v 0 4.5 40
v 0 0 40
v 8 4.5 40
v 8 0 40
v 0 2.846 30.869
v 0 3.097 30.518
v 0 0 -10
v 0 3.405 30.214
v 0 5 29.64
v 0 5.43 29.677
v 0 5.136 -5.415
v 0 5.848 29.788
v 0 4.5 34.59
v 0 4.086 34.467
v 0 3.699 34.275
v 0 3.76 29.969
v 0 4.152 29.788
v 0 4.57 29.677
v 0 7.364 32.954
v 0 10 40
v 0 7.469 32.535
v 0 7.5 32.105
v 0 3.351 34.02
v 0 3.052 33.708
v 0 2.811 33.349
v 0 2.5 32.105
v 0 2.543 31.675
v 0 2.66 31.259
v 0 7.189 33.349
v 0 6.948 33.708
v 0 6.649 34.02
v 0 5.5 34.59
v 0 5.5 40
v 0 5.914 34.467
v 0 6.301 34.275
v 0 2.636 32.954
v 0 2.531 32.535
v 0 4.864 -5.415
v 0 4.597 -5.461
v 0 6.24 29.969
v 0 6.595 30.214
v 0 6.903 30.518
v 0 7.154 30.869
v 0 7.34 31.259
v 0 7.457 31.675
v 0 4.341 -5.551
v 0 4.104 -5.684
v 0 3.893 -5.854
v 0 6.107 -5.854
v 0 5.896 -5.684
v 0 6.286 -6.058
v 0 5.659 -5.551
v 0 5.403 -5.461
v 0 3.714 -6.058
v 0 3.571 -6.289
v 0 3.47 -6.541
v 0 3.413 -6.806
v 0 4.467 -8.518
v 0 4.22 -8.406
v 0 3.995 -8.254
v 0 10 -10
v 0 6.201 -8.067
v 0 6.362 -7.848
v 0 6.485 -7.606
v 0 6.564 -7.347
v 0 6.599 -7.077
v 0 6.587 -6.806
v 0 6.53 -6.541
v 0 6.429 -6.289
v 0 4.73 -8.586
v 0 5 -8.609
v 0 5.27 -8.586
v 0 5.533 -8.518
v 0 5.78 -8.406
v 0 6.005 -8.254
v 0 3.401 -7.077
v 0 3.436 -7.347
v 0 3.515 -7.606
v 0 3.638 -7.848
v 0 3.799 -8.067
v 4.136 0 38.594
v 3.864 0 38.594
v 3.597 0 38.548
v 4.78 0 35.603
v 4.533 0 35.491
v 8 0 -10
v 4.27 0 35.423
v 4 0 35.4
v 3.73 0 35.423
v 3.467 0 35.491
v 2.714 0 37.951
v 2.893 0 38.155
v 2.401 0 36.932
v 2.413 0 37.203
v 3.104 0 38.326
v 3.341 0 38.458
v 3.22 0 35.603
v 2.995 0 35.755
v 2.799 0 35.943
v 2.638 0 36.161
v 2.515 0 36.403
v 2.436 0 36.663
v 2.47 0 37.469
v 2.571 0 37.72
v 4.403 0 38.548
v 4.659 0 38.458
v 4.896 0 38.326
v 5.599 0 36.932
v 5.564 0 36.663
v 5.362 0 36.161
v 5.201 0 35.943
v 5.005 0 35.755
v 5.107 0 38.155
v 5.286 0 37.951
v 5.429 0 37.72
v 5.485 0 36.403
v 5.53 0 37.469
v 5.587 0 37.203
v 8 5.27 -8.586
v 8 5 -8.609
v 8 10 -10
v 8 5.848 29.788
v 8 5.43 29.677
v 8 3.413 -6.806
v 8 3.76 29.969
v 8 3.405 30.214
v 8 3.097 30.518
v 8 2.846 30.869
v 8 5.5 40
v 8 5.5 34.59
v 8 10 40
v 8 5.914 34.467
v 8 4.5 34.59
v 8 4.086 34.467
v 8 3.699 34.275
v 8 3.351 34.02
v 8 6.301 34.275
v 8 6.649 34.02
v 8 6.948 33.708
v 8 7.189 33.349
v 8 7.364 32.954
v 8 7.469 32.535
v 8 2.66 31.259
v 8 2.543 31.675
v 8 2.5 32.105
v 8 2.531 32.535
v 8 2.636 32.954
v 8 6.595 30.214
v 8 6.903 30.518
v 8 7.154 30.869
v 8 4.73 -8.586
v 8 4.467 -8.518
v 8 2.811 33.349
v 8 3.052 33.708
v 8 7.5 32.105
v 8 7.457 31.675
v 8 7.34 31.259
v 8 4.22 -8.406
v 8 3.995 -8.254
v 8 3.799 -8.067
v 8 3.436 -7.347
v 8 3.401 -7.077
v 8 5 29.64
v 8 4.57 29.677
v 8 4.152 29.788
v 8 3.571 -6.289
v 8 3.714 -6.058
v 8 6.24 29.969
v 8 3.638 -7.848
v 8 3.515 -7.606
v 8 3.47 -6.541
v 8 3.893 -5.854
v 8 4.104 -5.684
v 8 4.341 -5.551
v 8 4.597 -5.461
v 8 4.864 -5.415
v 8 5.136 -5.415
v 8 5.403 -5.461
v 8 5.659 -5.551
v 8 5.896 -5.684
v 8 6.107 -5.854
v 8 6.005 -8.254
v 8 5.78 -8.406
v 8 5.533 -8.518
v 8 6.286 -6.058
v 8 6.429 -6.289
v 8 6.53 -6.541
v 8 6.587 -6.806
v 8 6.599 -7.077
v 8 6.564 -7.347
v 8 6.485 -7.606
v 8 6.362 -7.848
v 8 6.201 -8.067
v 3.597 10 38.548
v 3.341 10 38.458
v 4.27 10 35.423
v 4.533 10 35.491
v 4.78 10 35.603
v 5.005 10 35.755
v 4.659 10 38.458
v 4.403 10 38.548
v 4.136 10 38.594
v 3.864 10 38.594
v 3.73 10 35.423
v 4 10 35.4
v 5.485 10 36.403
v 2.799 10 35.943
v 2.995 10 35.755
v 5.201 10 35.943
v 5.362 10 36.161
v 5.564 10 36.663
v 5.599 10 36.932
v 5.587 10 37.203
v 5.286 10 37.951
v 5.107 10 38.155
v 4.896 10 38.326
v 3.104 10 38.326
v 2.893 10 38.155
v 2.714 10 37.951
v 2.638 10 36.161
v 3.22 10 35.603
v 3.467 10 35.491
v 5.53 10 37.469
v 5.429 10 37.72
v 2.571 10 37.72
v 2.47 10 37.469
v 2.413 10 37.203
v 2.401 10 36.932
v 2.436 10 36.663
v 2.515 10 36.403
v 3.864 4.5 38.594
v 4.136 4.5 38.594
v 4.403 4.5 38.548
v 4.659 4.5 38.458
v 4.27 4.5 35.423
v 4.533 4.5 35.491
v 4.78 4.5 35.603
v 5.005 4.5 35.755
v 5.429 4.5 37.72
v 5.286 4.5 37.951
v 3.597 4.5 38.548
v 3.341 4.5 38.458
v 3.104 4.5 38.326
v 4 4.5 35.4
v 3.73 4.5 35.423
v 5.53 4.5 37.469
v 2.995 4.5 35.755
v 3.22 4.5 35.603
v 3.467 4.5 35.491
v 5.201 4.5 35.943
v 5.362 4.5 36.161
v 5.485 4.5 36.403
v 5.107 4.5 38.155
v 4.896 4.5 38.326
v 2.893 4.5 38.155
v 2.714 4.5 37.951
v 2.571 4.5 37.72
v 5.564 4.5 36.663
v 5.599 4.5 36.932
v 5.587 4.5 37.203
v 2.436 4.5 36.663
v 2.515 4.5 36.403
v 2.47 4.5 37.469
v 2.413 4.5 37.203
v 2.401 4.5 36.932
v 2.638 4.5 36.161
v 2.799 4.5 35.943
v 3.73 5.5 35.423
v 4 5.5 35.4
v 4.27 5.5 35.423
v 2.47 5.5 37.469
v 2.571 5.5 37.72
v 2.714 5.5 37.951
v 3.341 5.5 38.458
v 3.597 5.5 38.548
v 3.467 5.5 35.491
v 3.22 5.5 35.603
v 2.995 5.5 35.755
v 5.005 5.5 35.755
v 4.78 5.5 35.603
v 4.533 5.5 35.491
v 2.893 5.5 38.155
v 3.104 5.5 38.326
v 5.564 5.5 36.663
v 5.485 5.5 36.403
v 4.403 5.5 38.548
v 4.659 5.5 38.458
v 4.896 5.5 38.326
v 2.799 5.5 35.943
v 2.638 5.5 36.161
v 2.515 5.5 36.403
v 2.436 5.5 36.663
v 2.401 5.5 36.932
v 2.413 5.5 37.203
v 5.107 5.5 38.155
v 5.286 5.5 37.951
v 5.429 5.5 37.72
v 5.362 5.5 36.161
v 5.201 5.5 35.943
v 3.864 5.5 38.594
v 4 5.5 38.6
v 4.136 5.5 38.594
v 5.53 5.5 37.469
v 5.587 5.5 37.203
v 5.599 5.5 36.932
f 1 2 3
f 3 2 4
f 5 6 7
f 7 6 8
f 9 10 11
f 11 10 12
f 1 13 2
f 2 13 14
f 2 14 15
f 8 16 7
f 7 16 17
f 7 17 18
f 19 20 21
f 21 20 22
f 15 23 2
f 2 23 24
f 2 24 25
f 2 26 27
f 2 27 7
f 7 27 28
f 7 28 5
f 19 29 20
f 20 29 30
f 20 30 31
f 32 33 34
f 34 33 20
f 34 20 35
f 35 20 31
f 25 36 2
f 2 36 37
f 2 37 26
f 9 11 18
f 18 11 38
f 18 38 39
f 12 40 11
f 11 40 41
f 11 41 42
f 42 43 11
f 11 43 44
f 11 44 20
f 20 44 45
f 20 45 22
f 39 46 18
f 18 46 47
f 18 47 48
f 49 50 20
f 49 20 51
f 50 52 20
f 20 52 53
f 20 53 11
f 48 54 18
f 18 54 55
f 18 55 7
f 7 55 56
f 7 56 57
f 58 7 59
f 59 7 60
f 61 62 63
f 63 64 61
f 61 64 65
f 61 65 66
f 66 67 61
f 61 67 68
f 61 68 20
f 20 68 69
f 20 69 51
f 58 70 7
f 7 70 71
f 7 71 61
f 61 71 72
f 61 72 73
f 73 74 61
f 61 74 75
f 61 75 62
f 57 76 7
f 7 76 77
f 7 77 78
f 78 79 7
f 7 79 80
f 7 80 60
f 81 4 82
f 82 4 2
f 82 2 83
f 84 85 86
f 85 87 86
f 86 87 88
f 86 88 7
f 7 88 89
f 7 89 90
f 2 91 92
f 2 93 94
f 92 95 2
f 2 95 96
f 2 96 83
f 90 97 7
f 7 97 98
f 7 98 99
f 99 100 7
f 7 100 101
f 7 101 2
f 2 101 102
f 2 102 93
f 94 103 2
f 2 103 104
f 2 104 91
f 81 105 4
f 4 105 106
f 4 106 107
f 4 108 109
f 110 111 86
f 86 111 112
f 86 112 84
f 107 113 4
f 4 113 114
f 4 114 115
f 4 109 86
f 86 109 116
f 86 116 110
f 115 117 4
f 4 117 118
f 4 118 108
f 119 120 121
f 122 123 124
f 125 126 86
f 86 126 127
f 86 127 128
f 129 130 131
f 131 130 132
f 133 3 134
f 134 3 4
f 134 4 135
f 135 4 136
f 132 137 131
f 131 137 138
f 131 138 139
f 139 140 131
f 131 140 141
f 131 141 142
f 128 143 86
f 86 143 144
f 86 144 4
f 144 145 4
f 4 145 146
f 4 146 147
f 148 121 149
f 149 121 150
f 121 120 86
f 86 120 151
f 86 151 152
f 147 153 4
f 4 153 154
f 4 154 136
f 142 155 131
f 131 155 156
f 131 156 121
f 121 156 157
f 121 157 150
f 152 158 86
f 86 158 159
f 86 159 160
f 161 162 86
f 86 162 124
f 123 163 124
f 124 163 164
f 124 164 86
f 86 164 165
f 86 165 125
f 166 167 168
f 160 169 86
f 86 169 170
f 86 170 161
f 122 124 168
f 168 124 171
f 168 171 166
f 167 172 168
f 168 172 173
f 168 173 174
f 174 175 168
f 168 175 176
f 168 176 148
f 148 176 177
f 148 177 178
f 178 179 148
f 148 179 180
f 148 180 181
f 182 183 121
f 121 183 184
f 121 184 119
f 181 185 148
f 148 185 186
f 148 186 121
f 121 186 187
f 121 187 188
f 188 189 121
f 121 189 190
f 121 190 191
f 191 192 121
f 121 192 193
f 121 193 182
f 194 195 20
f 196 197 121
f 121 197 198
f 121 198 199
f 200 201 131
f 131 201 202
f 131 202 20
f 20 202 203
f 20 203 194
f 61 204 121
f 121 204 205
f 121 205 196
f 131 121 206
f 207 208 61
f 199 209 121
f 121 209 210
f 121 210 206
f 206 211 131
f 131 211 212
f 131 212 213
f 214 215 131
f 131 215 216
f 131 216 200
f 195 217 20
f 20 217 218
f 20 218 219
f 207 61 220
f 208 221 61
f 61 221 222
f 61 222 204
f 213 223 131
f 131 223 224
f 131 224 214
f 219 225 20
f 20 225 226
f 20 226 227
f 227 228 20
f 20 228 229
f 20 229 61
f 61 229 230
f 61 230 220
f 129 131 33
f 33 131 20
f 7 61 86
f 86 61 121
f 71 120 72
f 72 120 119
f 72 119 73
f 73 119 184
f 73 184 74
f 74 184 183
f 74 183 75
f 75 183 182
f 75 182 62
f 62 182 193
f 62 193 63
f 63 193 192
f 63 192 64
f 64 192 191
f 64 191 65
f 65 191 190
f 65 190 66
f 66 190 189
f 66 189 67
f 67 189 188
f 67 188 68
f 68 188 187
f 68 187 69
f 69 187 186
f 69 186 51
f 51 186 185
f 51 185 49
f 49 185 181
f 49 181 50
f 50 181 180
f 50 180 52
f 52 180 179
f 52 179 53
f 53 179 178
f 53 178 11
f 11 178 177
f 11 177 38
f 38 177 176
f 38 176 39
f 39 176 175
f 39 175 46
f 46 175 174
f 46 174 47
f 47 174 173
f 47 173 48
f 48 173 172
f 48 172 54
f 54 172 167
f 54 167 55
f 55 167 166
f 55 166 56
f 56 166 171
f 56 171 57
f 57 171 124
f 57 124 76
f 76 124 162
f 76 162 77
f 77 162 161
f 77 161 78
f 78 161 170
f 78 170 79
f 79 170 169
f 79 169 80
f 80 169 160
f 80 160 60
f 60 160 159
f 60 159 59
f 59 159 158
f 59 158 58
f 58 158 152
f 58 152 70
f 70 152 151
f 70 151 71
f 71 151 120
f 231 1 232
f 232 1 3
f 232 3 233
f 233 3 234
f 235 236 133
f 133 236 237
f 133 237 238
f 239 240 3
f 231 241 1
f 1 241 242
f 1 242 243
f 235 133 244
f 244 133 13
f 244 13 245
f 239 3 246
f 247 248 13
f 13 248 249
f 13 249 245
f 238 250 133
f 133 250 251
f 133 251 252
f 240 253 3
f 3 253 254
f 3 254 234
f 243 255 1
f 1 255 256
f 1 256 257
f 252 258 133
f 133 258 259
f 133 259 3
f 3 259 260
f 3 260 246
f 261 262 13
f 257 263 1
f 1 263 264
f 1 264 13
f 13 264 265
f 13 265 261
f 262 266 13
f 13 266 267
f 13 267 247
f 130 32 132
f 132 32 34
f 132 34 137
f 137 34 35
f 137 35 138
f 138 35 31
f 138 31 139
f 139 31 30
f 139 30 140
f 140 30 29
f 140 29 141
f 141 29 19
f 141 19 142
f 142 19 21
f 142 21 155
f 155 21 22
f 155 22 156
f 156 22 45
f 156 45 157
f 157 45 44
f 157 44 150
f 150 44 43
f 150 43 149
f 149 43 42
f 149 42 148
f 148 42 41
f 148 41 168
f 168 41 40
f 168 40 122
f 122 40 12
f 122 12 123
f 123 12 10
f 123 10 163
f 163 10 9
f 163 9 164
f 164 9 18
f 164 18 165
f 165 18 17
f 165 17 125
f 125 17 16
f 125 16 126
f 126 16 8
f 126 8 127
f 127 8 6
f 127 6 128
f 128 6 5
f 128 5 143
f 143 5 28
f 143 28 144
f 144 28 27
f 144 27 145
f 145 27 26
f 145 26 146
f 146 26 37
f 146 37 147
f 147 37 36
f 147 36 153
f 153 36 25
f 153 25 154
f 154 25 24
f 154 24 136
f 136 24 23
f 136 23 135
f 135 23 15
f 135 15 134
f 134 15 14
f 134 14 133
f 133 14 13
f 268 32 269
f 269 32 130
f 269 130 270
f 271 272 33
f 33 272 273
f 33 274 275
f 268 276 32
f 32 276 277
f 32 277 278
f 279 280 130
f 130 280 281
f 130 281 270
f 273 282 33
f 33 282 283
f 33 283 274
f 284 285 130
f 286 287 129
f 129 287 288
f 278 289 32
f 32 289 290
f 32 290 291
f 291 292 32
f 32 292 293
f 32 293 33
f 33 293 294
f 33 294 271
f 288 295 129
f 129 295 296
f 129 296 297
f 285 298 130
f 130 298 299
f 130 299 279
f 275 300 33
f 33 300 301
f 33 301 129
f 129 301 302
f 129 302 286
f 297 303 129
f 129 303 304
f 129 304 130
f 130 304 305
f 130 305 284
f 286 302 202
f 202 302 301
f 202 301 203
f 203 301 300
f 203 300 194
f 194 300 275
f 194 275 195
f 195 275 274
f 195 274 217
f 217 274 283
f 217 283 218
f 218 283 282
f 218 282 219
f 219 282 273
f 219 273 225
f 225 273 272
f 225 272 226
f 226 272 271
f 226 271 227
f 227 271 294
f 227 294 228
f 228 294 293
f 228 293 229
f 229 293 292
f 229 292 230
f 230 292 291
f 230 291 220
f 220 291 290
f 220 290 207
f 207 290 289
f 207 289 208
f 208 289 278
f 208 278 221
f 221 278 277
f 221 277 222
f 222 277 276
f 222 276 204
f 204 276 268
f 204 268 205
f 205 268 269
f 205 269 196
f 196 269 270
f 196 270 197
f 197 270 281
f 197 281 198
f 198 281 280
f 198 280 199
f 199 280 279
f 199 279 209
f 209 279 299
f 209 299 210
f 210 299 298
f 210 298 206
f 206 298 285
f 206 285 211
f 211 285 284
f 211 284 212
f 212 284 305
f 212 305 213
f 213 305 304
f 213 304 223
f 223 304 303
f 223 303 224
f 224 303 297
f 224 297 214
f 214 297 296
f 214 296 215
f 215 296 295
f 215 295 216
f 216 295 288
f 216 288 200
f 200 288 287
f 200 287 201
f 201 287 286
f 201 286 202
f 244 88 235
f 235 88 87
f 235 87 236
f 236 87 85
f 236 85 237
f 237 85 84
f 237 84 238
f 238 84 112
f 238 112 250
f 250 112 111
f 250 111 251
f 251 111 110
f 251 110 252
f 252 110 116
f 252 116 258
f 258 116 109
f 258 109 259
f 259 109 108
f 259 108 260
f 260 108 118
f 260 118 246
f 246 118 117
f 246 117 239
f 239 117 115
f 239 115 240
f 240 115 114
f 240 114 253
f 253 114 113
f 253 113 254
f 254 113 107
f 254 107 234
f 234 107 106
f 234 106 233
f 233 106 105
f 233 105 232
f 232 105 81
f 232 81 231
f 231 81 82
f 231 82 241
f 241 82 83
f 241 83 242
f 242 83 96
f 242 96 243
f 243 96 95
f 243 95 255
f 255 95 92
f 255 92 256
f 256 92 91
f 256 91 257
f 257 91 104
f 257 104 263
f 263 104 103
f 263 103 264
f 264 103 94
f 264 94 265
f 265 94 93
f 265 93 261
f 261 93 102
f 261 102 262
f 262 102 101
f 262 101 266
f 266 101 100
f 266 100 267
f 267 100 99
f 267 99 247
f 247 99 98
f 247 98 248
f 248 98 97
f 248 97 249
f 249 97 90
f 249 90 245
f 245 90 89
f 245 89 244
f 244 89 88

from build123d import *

# Parameters (mm, degrees)
SKETCH_1_W          = 8
SKETCH_1_H          = 10
EXTRUDE_1_DEPTH     = 40
SKETCH_5_W          = 8
SKETCH_5_H          = 10
EXTRUDE_2_DEPTH     = 10
SKETCH_7_R          = 1.6
CUT_EXTRUDE_4_DEPTH = 9
CUT_EXTRUDE_6_DEPTH = 9
SKETCH_3_R          = 1.6
CUT_EXTRUDE_7_DEPTH = 11


with BuildPart() as part:
    # 草图1 → 凸台-拉伸1 (new body)
    with BuildSketch(Plane.XY):
        with Locations((4, 5)):
            Rectangle(SKETCH_1_W, SKETCH_1_H)
    extrude(amount=EXTRUDE_1_DEPTH)

    # 草图5 → 凸台-拉伸2 (add)
    with BuildSketch(Plane(origin=(0, 0, 0), x_dir=(-1, 0, 0), z_dir=(0, 0, -1))):
        with Locations((-4, 5)):
            Rectangle(SKETCH_5_W, SKETCH_5_H)
    extrude(amount=EXTRUDE_2_DEPTH)

    # 草图7 → 切除-拉伸4 (cut, through all)
    with BuildSketch(Plane(origin=(8, 0, 0), x_dir=(0, 0, -1), z_dir=(1, 0, 0))):
        with Locations((7.0094551, 5)):
            Circle(SKETCH_7_R)
    extrude(amount=-CUT_EXTRUDE_4_DEPTH, mode=Mode.SUBTRACT)

    # 草图10 → 切除-拉伸6 (cut, through all)
    with BuildSketch(Plane.ZY):
        with BuildLine():
            Line((40, 5), (40, 5.5))
            Line((40, 5.5), (34.59, 5.5))
            ThreePointArc((34.59, 5.5), (29.63950005, 5), (34.59, 4.5))
            Line((34.59, 4.5), (40, 4.5))
            Line((40, 4.5), (40, 5))
        make_face()
    extrude(amount=-CUT_EXTRUDE_6_DEPTH, mode=Mode.SUBTRACT)

    # 草图3 → 切除-拉伸7 (cut, through all)
    with BuildSketch(Plane.XZ):
        with Locations((4, 37)):
            Circle(SKETCH_3_R)
    extrude(amount=-CUT_EXTRUDE_7_DEPTH, mode=Mode.SUBTRACT)


solid = part.part
